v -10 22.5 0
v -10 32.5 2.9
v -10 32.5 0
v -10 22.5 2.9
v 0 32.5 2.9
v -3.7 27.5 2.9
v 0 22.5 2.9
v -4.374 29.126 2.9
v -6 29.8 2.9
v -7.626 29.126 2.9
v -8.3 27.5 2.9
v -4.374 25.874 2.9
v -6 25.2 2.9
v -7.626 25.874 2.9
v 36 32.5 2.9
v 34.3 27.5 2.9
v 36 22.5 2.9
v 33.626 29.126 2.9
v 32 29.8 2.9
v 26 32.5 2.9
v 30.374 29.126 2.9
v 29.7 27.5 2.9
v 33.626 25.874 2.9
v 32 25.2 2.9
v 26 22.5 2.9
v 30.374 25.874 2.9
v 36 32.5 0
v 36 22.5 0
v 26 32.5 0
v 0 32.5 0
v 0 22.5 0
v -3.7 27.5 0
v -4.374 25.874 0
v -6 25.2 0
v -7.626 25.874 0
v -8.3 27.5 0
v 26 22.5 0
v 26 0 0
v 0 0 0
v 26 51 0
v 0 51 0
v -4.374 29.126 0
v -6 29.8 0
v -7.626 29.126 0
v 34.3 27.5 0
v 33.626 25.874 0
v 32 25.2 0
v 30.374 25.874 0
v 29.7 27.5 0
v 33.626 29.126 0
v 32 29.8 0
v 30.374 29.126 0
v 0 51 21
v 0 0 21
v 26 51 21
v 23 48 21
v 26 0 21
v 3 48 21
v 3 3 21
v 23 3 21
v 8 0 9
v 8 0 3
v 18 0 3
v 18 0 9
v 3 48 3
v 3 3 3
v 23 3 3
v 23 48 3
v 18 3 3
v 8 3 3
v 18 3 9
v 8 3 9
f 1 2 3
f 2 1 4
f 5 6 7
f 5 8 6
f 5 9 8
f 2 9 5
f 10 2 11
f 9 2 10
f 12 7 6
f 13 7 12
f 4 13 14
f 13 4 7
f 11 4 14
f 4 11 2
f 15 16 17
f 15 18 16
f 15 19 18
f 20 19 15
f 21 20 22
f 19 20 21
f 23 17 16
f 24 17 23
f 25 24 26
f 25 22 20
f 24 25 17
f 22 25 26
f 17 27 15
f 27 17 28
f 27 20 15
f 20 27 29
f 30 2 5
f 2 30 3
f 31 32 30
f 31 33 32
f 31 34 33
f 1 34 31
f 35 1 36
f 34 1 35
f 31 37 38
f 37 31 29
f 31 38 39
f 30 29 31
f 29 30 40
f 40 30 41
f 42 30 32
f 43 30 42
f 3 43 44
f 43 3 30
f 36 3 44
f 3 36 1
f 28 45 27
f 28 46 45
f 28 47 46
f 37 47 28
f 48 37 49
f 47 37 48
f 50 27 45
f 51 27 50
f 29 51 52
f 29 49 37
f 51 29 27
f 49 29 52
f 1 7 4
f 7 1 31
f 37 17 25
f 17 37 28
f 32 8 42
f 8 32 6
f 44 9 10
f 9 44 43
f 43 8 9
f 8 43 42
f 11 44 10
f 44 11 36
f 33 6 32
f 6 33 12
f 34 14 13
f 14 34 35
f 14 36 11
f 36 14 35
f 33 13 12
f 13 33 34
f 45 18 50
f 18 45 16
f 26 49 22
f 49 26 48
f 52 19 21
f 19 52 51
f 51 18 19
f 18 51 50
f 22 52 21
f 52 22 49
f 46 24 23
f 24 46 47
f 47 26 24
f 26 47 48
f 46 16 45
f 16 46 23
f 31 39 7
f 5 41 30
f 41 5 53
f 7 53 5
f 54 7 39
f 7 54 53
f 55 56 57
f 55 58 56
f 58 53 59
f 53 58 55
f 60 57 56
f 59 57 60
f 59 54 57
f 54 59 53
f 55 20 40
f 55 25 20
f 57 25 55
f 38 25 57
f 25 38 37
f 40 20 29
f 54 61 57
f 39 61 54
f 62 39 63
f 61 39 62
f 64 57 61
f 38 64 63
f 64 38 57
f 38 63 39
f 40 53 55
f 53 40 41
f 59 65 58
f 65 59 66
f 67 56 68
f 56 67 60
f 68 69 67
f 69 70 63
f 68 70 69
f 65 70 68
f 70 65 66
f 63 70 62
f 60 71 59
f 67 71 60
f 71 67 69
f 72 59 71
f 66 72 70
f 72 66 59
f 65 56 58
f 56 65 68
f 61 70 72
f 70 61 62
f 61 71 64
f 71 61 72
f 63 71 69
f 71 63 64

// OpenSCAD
nanoPared = 3;
nanoP2 = nanoPared * 2;

nanoW = 20;
nanoH = 45;
nanoD = 18;

difference()
{
    cube([
            nanoW+nanoP2,
            nanoH+nanoP2,
            nanoD+nanoPared
        ]);
    
    translate([nanoPared,nanoPared,nanoPared])
    cube([nanoW,nanoH,nanoD+1]);
    
    translate([
                ((nanoP2+nanoW)/2)-5,0,nanoPared])
    cube([10,7,nanoP2]);
}

cejaW = nanoW+nanoP2+20;
translate([-10,(nanoH/2),0])

difference()
{
    cube([cejaW,10,nanoPared-0.1]);
    
    translate([4,5,-0.1])
    cylinder(r=2.3,nanoP2);
    
    translate([cejaW-4,5,-0.1])
    cylinder(r=2.3,nanoP2);
}
